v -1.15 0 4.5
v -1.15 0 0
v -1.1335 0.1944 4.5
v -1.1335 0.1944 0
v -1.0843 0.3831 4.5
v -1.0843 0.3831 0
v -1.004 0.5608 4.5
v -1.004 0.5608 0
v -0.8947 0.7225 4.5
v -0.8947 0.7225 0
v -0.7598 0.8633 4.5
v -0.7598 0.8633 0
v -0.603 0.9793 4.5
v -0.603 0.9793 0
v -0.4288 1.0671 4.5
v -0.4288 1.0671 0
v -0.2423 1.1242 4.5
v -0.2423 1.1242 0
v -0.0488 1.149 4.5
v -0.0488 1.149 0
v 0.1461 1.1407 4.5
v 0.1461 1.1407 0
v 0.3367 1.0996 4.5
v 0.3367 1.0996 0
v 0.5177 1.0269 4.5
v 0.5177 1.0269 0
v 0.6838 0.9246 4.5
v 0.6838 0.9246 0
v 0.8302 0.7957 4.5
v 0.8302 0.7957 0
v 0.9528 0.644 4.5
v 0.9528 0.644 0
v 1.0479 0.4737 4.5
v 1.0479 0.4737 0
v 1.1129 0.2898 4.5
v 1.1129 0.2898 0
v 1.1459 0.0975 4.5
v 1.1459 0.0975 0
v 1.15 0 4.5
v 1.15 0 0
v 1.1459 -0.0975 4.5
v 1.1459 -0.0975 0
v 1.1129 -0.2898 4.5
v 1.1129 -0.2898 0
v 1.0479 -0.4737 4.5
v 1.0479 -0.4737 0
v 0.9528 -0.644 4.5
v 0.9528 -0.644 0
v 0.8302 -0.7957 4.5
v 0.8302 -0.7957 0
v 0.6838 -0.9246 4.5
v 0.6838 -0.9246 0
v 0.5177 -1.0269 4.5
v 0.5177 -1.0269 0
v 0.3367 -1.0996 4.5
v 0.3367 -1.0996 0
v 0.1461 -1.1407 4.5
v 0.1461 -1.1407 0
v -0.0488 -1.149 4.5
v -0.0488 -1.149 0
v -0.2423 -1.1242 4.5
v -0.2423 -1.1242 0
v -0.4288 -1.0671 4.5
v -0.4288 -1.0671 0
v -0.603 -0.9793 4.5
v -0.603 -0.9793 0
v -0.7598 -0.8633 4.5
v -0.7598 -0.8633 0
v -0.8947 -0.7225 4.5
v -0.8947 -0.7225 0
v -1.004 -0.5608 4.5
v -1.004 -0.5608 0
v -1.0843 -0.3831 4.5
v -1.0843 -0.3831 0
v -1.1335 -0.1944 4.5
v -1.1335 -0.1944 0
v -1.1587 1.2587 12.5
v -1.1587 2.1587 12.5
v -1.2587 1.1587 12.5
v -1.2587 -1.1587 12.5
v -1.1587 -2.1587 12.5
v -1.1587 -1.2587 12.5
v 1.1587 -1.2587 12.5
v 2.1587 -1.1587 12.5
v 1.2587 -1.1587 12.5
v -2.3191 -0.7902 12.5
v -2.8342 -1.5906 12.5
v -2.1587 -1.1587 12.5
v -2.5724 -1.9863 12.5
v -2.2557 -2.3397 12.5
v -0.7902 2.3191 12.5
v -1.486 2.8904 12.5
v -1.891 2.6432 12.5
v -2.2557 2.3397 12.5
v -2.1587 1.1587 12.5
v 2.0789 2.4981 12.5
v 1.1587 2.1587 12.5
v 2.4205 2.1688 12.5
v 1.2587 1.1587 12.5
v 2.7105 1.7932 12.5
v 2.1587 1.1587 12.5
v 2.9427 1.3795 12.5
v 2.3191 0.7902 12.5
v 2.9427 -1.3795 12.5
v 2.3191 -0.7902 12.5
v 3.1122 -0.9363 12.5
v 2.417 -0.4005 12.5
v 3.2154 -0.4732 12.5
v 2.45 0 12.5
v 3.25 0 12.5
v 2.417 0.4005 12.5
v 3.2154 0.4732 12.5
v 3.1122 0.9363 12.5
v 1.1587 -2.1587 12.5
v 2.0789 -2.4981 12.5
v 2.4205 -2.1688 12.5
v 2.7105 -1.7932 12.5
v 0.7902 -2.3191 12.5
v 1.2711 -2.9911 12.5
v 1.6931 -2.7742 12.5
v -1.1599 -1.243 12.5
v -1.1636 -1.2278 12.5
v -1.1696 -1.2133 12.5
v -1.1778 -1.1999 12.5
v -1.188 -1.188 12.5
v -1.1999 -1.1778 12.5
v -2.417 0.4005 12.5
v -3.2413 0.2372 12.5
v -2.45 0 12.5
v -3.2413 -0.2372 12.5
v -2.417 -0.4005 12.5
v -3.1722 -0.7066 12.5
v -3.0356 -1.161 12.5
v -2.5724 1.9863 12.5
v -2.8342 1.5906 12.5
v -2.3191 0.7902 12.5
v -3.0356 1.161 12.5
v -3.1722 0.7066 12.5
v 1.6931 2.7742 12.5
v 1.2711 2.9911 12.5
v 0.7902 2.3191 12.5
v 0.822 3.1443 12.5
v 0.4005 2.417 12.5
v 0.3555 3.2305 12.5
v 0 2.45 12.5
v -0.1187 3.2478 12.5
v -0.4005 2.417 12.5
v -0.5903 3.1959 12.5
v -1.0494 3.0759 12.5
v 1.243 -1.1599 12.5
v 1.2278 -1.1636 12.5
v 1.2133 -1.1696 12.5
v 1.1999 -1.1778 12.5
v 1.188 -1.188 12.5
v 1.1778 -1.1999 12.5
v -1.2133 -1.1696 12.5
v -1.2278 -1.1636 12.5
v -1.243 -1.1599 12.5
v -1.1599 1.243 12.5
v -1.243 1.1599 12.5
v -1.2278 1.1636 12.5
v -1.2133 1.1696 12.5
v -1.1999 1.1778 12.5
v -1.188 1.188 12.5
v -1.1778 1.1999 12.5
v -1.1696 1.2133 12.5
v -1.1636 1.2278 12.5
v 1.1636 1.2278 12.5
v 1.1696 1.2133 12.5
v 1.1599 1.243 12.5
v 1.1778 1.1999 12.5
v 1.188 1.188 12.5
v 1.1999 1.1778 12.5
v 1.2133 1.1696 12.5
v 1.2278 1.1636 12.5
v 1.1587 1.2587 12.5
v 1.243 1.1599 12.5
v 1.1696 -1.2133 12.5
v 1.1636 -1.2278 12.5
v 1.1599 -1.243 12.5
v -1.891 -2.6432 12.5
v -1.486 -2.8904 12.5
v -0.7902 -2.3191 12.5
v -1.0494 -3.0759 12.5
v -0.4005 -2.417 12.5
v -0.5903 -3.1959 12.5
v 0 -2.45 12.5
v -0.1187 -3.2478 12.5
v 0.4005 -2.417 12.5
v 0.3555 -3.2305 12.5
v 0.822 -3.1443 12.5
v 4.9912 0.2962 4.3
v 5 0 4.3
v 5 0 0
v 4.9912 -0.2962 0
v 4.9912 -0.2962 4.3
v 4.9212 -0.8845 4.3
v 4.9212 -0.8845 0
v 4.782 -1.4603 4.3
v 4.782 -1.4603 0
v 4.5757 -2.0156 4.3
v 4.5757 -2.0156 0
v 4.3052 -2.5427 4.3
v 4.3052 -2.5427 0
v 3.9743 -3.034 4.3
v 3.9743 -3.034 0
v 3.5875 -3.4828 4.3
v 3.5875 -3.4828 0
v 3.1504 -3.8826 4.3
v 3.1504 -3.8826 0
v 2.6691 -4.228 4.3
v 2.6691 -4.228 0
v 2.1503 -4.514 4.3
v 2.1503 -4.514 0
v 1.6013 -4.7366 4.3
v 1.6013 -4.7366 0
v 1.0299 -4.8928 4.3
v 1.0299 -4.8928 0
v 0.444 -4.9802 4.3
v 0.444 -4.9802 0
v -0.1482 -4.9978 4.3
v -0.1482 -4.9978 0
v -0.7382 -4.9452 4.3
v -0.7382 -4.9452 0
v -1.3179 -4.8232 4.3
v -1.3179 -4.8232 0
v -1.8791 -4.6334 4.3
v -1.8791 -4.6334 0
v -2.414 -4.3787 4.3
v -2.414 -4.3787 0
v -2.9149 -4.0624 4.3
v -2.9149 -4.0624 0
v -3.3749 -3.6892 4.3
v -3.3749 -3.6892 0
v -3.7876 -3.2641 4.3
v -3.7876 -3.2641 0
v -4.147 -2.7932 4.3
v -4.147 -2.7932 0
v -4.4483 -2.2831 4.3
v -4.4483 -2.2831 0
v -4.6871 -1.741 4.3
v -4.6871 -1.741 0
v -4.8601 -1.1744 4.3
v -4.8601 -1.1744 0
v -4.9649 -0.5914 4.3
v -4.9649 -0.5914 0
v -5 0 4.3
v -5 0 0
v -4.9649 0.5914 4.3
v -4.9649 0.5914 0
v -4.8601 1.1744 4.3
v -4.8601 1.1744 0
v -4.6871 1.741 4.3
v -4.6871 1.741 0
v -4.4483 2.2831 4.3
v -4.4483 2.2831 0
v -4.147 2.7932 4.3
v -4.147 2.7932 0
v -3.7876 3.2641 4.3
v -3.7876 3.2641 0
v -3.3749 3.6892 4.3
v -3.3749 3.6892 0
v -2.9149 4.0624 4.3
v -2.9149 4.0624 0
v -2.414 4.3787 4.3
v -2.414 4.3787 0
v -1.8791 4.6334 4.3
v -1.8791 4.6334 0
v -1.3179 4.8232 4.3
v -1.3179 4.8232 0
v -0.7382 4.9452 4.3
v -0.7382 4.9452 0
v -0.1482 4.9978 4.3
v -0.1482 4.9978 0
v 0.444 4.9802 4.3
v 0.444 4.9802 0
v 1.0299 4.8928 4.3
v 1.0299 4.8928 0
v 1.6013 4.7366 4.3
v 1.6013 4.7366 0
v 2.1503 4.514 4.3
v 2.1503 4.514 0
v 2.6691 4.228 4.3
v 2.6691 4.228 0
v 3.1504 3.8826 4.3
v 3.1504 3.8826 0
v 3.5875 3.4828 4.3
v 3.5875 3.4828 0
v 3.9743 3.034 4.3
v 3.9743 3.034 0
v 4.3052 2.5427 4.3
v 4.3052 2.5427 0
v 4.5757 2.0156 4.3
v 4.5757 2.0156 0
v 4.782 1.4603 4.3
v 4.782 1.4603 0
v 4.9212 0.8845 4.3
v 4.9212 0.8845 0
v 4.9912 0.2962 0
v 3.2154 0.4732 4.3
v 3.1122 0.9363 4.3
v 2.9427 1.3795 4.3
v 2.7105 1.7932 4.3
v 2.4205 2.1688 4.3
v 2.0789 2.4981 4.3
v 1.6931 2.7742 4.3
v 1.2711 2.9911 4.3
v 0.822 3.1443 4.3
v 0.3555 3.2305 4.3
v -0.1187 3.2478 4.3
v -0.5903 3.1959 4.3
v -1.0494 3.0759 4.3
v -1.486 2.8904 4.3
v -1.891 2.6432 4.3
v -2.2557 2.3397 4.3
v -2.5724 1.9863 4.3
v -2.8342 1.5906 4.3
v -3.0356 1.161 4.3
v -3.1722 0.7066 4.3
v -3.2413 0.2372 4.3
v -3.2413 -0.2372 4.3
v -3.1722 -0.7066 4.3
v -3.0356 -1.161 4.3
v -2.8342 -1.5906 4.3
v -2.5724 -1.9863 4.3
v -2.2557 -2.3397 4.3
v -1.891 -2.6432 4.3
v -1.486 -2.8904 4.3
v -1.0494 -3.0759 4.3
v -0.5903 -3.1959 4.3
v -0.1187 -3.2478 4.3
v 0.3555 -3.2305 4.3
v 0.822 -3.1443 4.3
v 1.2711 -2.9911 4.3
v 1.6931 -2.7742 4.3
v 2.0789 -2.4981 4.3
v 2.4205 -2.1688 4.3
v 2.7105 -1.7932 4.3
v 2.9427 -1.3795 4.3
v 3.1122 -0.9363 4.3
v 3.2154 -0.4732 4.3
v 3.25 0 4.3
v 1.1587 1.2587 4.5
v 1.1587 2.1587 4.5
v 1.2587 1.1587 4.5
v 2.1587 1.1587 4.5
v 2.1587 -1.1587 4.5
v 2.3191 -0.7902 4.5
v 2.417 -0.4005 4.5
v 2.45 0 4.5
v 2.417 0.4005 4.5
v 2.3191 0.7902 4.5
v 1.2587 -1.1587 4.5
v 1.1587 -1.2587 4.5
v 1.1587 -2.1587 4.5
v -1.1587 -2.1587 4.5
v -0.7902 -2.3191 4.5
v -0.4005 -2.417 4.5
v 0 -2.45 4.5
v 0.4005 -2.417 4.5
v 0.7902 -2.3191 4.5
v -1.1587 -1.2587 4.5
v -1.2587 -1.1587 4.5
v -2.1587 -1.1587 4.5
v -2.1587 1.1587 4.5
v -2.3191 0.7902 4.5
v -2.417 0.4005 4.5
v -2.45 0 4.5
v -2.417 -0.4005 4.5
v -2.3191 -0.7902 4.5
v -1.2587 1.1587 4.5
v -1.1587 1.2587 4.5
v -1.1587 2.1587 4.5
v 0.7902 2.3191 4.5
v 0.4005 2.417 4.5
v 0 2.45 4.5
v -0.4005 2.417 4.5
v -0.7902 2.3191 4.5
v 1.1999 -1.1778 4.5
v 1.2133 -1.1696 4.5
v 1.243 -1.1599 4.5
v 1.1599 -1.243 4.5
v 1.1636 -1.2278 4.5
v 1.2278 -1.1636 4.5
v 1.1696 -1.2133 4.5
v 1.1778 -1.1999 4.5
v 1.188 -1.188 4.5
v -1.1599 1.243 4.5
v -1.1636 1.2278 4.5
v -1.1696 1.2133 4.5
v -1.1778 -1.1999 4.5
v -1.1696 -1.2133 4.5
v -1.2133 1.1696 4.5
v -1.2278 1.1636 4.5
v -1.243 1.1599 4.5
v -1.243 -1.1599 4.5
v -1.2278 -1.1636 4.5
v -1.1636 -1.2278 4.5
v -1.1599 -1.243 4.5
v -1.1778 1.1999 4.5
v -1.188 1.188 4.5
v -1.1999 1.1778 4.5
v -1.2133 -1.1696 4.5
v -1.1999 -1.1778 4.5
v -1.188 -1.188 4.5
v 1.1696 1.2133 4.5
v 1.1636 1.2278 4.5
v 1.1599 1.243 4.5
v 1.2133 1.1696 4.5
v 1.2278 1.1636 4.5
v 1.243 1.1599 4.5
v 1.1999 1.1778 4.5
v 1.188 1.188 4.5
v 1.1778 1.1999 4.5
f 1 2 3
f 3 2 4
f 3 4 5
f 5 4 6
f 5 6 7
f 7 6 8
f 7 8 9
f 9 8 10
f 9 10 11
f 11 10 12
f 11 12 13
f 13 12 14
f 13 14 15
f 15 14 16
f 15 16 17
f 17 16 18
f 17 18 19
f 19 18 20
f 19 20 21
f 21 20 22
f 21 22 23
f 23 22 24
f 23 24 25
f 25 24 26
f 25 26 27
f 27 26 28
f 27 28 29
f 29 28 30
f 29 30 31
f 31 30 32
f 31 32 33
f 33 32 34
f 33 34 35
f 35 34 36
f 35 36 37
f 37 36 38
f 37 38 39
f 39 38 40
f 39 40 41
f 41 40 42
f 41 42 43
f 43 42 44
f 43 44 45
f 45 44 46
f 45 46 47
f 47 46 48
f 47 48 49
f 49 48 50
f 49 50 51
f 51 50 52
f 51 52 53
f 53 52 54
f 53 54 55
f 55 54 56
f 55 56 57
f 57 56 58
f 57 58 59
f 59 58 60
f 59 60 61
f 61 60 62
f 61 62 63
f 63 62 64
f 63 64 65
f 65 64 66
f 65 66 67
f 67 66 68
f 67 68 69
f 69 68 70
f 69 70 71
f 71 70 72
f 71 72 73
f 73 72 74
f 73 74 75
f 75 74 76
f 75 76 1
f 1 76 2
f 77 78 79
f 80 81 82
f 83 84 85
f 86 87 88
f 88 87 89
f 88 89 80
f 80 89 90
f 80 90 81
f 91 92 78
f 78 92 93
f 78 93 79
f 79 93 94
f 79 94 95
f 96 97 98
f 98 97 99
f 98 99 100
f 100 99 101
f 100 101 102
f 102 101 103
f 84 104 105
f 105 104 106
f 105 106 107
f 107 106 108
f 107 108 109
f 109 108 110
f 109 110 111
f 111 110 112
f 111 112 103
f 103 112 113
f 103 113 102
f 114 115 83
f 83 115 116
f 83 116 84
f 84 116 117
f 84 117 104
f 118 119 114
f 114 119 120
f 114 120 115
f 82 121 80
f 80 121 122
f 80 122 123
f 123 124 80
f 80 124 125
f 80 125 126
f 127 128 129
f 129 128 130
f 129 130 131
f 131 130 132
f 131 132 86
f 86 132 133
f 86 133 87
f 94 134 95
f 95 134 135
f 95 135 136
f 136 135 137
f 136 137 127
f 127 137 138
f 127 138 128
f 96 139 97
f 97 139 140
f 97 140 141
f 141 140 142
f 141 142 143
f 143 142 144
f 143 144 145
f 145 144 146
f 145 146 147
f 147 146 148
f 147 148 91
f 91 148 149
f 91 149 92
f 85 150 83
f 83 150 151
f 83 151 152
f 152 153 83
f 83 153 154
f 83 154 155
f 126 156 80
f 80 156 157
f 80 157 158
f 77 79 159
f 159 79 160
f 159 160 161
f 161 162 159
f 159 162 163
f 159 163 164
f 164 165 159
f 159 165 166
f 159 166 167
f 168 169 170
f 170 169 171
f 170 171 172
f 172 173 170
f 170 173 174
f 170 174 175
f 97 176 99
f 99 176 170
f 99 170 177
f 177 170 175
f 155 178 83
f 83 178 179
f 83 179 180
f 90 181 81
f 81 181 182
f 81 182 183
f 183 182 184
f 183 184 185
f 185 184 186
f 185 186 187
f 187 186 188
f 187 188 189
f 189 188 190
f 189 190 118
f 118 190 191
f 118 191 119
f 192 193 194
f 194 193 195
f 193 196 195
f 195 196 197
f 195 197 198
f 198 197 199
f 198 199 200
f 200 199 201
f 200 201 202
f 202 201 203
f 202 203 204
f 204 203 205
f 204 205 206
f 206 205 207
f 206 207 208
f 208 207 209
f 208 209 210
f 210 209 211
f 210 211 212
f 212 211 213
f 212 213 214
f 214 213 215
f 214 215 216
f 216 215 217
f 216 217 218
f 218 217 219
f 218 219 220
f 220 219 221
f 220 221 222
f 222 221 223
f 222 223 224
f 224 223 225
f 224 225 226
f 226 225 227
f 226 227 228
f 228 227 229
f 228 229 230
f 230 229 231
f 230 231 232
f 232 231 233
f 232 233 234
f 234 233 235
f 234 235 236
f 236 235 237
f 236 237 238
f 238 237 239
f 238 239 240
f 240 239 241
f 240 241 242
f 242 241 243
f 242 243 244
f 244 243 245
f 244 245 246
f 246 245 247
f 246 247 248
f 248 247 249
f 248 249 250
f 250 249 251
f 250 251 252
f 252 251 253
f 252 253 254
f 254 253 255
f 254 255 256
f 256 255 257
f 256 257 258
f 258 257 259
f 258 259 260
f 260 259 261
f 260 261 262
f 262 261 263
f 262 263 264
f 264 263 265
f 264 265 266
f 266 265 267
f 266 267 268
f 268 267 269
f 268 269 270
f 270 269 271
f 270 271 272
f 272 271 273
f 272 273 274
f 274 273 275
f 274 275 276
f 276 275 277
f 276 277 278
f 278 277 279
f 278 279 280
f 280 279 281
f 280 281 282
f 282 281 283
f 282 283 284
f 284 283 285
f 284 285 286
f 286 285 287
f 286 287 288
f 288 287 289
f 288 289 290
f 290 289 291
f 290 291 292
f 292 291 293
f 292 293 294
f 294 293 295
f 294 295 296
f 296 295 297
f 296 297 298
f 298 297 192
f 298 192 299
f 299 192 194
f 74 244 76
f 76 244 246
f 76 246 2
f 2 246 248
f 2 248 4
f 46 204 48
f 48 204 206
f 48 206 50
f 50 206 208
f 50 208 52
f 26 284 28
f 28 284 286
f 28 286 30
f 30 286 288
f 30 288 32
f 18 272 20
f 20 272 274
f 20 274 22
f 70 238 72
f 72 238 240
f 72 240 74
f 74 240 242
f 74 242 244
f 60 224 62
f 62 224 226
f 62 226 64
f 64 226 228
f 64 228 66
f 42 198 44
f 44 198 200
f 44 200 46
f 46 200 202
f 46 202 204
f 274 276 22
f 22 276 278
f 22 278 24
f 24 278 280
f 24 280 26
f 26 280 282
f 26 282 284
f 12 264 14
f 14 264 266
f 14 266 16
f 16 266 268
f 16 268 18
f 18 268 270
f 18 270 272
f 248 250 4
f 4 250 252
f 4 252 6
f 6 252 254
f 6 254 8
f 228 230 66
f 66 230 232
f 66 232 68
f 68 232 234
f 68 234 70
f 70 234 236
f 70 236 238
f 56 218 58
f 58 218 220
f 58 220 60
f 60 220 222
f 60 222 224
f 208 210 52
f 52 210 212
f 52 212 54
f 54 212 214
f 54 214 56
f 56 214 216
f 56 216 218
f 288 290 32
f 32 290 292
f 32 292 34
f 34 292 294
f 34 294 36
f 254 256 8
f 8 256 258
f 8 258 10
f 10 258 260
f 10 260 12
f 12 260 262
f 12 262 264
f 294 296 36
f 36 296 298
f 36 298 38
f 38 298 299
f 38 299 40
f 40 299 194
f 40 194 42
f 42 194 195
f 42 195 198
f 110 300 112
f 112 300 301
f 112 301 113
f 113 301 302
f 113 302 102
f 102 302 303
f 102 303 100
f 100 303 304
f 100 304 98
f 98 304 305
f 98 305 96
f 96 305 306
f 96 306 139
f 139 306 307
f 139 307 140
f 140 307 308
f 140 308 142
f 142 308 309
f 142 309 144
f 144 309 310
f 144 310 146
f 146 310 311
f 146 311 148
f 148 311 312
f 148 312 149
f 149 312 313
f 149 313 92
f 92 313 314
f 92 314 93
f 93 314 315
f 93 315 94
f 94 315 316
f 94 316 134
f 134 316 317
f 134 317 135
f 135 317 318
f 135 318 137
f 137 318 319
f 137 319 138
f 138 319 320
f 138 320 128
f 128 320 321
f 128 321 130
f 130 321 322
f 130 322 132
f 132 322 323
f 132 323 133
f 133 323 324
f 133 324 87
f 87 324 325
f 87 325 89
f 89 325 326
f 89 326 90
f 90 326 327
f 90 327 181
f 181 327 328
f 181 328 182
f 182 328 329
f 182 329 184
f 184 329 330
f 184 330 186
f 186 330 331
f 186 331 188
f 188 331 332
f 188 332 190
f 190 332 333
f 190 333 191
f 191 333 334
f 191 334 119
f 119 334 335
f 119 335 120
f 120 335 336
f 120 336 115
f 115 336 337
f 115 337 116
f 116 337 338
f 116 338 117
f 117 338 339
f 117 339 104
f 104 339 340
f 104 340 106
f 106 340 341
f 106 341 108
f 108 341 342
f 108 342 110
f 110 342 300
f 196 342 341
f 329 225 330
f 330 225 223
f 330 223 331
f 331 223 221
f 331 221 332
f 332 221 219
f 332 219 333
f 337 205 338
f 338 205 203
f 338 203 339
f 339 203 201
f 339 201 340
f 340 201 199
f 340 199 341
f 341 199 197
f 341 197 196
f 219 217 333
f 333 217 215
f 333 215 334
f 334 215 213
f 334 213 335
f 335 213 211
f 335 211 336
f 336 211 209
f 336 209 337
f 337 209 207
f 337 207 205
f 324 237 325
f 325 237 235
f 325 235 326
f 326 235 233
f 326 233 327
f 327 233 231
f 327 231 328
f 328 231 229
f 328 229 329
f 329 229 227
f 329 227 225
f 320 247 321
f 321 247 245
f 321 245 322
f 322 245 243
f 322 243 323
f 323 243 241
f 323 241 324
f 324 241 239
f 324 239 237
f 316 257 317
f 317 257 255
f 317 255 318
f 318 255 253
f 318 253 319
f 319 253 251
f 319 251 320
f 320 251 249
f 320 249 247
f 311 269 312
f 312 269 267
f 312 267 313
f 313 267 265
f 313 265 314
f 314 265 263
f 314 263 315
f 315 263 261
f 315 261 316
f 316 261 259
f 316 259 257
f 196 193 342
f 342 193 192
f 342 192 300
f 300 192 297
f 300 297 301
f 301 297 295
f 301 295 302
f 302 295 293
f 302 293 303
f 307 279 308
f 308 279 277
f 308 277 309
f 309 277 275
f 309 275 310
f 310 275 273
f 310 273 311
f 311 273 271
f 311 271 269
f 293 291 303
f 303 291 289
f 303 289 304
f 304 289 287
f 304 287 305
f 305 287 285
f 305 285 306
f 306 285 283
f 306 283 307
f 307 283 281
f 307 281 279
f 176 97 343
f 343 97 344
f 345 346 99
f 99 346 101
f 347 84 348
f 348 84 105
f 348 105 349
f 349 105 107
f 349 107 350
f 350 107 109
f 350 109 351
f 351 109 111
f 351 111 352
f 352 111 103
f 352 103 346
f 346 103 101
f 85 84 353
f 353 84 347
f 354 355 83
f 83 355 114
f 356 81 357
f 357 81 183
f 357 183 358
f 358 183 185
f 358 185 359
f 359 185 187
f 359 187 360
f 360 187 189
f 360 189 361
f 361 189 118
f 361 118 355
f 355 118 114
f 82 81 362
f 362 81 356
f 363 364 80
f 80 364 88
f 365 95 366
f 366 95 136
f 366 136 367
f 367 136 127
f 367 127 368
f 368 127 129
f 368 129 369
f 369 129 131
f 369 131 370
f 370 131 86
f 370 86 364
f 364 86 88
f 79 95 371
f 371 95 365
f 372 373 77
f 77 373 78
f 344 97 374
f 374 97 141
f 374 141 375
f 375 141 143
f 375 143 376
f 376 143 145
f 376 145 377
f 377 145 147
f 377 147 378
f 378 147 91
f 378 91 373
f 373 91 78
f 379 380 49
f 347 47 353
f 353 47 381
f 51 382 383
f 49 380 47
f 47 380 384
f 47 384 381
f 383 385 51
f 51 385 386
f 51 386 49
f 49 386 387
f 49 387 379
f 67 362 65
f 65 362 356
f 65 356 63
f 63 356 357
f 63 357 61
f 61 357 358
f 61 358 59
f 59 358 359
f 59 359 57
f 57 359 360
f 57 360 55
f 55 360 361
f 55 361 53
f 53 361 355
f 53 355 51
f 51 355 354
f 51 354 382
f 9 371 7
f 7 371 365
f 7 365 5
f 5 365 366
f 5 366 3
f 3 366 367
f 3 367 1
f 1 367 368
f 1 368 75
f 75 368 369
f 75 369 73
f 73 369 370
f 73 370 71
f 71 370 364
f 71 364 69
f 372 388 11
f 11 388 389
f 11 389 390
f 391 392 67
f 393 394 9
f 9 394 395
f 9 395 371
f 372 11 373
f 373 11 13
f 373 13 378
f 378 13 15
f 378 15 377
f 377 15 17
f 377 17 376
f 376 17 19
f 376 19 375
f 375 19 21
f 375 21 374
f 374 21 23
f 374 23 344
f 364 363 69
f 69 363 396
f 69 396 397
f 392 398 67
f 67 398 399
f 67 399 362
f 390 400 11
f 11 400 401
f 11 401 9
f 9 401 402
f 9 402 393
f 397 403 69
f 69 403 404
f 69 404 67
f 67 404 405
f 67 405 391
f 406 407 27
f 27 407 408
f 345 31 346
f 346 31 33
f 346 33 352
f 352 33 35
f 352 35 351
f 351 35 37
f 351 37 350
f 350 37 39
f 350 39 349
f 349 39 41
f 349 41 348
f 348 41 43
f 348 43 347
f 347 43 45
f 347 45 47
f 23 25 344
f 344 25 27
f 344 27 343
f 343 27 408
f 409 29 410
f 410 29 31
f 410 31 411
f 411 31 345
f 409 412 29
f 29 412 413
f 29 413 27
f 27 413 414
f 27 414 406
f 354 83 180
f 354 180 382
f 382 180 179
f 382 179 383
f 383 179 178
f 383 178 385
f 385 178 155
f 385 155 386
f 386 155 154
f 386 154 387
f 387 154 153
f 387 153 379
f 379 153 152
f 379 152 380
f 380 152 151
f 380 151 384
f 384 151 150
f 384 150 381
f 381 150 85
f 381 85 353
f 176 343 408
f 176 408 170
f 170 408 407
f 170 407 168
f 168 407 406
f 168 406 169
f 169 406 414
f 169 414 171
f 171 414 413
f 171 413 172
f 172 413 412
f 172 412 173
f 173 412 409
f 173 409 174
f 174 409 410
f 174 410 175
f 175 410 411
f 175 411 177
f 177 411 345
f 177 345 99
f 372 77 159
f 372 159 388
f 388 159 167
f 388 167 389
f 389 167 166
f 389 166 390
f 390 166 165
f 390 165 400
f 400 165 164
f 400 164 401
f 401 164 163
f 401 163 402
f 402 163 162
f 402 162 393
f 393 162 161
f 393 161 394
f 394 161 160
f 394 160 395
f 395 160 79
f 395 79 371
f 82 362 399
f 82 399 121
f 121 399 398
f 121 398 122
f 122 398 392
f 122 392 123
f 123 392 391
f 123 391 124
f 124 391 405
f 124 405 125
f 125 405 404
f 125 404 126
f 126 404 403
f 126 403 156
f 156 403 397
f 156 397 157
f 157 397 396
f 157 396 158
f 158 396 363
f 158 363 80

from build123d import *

# Parameters (mm, degrees)
SKETCH_1_R          = 5
SKETCH_1_R_2        = 1.15
EXTRUDE_1_DEPTH     = 12.5
CUT_EXTRUDE_START   = -8.2
SKETCH_2_R          = 5
SKETCH_2_R_2        = 3.25
CUT_EXTRUDE_5_DEPTH = 8.2
CUT_EXTRUDE_START_2 = -8
SKETCH_2_7_R        = 1.15
CUT_EXTRUDE_6_DEPTH = 8
FILLET_1_R          = 0.1


with BuildPart() as part:
    # 草图1 → 凸台-拉伸1 (new body)
    with BuildSketch(Plane.XY):
        Circle(SKETCH_1_R)
        Circle(SKETCH_1_R_2, mode=Mode.SUBTRACT)
    extrude(amount=EXTRUDE_1_DEPTH)

    # 草图2 → 切除-拉伸5 (cut)
    with BuildSketch(Plane.XY.offset(12.5).offset(CUT_EXTRUDE_START)):
        Circle(SKETCH_2_R)
        Circle(SKETCH_2_R_2, mode=Mode.SUBTRACT)
    extrude(amount=CUT_EXTRUDE_5_DEPTH, mode=Mode.SUBTRACT)

    # 草图2<7> → 切除-拉伸6 (cut)
    with BuildSketch(Plane.XY.offset(12.5).offset(CUT_EXTRUDE_START_2)):
        with BuildLine():
            Line((2.158689242, 1.158689242), (1.158689242, 1.158689242))
            Line((1.158689242, 1.158689242), (1.158689242, 2.158689242))
            ThreePointArc((1.158689242, 2.158689242), (0, 2.45), (-1.158689242, 2.158689242))
            Line((-1.158689242, 2.158689242), (-1.158689242, 1.158689242))
            Line((-1.158689242, 1.158689242), (-2.158689242, 1.158689242))
            ThreePointArc((-2.158689242, 1.158689242), (-2.45, 0), (-2.158689242, -1.158689242))
            Line((-2.158689242, -1.158689242), (-1.158689242, -1.158689242))
            Line((-1.158689242, -1.158689242), (-1.158689242, -2.158689242))
            ThreePointArc((-1.158689242, -2.158689242), (0, -2.45), (1.158689242, -2.158689242))
            Line((1.158689242, -2.158689242), (1.158689242, -1.158689242))
            Line((1.158689242, -1.158689242), (2.158689242, -1.158689242))
            ThreePointArc((2.158689242, -1.158689242), (2.376056464, -0.597373986), (2.45, 0))
            ThreePointArc((2.45, 0), (2.376056464, 0.597373986), (2.158689242, 1.158689242))
        make_face()
        Circle(SKETCH_2_7_R, mode=Mode.SUBTRACT)
    extrude(amount=CUT_EXTRUDE_6_DEPTH, mode=Mode.SUBTRACT)

    # 圆角1
    fillet_1_edges = [part.edges().sort_by_distance(p)[0] for p in [
        (1.158689242, 1.158689242, 8.5),
        (1.158689242, -1.158689242, 8.5),
        (-1.158689242, -1.158689242, 8.5),
        (-1.158689242, 1.158689242, 8.5),
    ]]
    fillet(fillet_1_edges, radius=FILLET_1_R)


solid = part.part
